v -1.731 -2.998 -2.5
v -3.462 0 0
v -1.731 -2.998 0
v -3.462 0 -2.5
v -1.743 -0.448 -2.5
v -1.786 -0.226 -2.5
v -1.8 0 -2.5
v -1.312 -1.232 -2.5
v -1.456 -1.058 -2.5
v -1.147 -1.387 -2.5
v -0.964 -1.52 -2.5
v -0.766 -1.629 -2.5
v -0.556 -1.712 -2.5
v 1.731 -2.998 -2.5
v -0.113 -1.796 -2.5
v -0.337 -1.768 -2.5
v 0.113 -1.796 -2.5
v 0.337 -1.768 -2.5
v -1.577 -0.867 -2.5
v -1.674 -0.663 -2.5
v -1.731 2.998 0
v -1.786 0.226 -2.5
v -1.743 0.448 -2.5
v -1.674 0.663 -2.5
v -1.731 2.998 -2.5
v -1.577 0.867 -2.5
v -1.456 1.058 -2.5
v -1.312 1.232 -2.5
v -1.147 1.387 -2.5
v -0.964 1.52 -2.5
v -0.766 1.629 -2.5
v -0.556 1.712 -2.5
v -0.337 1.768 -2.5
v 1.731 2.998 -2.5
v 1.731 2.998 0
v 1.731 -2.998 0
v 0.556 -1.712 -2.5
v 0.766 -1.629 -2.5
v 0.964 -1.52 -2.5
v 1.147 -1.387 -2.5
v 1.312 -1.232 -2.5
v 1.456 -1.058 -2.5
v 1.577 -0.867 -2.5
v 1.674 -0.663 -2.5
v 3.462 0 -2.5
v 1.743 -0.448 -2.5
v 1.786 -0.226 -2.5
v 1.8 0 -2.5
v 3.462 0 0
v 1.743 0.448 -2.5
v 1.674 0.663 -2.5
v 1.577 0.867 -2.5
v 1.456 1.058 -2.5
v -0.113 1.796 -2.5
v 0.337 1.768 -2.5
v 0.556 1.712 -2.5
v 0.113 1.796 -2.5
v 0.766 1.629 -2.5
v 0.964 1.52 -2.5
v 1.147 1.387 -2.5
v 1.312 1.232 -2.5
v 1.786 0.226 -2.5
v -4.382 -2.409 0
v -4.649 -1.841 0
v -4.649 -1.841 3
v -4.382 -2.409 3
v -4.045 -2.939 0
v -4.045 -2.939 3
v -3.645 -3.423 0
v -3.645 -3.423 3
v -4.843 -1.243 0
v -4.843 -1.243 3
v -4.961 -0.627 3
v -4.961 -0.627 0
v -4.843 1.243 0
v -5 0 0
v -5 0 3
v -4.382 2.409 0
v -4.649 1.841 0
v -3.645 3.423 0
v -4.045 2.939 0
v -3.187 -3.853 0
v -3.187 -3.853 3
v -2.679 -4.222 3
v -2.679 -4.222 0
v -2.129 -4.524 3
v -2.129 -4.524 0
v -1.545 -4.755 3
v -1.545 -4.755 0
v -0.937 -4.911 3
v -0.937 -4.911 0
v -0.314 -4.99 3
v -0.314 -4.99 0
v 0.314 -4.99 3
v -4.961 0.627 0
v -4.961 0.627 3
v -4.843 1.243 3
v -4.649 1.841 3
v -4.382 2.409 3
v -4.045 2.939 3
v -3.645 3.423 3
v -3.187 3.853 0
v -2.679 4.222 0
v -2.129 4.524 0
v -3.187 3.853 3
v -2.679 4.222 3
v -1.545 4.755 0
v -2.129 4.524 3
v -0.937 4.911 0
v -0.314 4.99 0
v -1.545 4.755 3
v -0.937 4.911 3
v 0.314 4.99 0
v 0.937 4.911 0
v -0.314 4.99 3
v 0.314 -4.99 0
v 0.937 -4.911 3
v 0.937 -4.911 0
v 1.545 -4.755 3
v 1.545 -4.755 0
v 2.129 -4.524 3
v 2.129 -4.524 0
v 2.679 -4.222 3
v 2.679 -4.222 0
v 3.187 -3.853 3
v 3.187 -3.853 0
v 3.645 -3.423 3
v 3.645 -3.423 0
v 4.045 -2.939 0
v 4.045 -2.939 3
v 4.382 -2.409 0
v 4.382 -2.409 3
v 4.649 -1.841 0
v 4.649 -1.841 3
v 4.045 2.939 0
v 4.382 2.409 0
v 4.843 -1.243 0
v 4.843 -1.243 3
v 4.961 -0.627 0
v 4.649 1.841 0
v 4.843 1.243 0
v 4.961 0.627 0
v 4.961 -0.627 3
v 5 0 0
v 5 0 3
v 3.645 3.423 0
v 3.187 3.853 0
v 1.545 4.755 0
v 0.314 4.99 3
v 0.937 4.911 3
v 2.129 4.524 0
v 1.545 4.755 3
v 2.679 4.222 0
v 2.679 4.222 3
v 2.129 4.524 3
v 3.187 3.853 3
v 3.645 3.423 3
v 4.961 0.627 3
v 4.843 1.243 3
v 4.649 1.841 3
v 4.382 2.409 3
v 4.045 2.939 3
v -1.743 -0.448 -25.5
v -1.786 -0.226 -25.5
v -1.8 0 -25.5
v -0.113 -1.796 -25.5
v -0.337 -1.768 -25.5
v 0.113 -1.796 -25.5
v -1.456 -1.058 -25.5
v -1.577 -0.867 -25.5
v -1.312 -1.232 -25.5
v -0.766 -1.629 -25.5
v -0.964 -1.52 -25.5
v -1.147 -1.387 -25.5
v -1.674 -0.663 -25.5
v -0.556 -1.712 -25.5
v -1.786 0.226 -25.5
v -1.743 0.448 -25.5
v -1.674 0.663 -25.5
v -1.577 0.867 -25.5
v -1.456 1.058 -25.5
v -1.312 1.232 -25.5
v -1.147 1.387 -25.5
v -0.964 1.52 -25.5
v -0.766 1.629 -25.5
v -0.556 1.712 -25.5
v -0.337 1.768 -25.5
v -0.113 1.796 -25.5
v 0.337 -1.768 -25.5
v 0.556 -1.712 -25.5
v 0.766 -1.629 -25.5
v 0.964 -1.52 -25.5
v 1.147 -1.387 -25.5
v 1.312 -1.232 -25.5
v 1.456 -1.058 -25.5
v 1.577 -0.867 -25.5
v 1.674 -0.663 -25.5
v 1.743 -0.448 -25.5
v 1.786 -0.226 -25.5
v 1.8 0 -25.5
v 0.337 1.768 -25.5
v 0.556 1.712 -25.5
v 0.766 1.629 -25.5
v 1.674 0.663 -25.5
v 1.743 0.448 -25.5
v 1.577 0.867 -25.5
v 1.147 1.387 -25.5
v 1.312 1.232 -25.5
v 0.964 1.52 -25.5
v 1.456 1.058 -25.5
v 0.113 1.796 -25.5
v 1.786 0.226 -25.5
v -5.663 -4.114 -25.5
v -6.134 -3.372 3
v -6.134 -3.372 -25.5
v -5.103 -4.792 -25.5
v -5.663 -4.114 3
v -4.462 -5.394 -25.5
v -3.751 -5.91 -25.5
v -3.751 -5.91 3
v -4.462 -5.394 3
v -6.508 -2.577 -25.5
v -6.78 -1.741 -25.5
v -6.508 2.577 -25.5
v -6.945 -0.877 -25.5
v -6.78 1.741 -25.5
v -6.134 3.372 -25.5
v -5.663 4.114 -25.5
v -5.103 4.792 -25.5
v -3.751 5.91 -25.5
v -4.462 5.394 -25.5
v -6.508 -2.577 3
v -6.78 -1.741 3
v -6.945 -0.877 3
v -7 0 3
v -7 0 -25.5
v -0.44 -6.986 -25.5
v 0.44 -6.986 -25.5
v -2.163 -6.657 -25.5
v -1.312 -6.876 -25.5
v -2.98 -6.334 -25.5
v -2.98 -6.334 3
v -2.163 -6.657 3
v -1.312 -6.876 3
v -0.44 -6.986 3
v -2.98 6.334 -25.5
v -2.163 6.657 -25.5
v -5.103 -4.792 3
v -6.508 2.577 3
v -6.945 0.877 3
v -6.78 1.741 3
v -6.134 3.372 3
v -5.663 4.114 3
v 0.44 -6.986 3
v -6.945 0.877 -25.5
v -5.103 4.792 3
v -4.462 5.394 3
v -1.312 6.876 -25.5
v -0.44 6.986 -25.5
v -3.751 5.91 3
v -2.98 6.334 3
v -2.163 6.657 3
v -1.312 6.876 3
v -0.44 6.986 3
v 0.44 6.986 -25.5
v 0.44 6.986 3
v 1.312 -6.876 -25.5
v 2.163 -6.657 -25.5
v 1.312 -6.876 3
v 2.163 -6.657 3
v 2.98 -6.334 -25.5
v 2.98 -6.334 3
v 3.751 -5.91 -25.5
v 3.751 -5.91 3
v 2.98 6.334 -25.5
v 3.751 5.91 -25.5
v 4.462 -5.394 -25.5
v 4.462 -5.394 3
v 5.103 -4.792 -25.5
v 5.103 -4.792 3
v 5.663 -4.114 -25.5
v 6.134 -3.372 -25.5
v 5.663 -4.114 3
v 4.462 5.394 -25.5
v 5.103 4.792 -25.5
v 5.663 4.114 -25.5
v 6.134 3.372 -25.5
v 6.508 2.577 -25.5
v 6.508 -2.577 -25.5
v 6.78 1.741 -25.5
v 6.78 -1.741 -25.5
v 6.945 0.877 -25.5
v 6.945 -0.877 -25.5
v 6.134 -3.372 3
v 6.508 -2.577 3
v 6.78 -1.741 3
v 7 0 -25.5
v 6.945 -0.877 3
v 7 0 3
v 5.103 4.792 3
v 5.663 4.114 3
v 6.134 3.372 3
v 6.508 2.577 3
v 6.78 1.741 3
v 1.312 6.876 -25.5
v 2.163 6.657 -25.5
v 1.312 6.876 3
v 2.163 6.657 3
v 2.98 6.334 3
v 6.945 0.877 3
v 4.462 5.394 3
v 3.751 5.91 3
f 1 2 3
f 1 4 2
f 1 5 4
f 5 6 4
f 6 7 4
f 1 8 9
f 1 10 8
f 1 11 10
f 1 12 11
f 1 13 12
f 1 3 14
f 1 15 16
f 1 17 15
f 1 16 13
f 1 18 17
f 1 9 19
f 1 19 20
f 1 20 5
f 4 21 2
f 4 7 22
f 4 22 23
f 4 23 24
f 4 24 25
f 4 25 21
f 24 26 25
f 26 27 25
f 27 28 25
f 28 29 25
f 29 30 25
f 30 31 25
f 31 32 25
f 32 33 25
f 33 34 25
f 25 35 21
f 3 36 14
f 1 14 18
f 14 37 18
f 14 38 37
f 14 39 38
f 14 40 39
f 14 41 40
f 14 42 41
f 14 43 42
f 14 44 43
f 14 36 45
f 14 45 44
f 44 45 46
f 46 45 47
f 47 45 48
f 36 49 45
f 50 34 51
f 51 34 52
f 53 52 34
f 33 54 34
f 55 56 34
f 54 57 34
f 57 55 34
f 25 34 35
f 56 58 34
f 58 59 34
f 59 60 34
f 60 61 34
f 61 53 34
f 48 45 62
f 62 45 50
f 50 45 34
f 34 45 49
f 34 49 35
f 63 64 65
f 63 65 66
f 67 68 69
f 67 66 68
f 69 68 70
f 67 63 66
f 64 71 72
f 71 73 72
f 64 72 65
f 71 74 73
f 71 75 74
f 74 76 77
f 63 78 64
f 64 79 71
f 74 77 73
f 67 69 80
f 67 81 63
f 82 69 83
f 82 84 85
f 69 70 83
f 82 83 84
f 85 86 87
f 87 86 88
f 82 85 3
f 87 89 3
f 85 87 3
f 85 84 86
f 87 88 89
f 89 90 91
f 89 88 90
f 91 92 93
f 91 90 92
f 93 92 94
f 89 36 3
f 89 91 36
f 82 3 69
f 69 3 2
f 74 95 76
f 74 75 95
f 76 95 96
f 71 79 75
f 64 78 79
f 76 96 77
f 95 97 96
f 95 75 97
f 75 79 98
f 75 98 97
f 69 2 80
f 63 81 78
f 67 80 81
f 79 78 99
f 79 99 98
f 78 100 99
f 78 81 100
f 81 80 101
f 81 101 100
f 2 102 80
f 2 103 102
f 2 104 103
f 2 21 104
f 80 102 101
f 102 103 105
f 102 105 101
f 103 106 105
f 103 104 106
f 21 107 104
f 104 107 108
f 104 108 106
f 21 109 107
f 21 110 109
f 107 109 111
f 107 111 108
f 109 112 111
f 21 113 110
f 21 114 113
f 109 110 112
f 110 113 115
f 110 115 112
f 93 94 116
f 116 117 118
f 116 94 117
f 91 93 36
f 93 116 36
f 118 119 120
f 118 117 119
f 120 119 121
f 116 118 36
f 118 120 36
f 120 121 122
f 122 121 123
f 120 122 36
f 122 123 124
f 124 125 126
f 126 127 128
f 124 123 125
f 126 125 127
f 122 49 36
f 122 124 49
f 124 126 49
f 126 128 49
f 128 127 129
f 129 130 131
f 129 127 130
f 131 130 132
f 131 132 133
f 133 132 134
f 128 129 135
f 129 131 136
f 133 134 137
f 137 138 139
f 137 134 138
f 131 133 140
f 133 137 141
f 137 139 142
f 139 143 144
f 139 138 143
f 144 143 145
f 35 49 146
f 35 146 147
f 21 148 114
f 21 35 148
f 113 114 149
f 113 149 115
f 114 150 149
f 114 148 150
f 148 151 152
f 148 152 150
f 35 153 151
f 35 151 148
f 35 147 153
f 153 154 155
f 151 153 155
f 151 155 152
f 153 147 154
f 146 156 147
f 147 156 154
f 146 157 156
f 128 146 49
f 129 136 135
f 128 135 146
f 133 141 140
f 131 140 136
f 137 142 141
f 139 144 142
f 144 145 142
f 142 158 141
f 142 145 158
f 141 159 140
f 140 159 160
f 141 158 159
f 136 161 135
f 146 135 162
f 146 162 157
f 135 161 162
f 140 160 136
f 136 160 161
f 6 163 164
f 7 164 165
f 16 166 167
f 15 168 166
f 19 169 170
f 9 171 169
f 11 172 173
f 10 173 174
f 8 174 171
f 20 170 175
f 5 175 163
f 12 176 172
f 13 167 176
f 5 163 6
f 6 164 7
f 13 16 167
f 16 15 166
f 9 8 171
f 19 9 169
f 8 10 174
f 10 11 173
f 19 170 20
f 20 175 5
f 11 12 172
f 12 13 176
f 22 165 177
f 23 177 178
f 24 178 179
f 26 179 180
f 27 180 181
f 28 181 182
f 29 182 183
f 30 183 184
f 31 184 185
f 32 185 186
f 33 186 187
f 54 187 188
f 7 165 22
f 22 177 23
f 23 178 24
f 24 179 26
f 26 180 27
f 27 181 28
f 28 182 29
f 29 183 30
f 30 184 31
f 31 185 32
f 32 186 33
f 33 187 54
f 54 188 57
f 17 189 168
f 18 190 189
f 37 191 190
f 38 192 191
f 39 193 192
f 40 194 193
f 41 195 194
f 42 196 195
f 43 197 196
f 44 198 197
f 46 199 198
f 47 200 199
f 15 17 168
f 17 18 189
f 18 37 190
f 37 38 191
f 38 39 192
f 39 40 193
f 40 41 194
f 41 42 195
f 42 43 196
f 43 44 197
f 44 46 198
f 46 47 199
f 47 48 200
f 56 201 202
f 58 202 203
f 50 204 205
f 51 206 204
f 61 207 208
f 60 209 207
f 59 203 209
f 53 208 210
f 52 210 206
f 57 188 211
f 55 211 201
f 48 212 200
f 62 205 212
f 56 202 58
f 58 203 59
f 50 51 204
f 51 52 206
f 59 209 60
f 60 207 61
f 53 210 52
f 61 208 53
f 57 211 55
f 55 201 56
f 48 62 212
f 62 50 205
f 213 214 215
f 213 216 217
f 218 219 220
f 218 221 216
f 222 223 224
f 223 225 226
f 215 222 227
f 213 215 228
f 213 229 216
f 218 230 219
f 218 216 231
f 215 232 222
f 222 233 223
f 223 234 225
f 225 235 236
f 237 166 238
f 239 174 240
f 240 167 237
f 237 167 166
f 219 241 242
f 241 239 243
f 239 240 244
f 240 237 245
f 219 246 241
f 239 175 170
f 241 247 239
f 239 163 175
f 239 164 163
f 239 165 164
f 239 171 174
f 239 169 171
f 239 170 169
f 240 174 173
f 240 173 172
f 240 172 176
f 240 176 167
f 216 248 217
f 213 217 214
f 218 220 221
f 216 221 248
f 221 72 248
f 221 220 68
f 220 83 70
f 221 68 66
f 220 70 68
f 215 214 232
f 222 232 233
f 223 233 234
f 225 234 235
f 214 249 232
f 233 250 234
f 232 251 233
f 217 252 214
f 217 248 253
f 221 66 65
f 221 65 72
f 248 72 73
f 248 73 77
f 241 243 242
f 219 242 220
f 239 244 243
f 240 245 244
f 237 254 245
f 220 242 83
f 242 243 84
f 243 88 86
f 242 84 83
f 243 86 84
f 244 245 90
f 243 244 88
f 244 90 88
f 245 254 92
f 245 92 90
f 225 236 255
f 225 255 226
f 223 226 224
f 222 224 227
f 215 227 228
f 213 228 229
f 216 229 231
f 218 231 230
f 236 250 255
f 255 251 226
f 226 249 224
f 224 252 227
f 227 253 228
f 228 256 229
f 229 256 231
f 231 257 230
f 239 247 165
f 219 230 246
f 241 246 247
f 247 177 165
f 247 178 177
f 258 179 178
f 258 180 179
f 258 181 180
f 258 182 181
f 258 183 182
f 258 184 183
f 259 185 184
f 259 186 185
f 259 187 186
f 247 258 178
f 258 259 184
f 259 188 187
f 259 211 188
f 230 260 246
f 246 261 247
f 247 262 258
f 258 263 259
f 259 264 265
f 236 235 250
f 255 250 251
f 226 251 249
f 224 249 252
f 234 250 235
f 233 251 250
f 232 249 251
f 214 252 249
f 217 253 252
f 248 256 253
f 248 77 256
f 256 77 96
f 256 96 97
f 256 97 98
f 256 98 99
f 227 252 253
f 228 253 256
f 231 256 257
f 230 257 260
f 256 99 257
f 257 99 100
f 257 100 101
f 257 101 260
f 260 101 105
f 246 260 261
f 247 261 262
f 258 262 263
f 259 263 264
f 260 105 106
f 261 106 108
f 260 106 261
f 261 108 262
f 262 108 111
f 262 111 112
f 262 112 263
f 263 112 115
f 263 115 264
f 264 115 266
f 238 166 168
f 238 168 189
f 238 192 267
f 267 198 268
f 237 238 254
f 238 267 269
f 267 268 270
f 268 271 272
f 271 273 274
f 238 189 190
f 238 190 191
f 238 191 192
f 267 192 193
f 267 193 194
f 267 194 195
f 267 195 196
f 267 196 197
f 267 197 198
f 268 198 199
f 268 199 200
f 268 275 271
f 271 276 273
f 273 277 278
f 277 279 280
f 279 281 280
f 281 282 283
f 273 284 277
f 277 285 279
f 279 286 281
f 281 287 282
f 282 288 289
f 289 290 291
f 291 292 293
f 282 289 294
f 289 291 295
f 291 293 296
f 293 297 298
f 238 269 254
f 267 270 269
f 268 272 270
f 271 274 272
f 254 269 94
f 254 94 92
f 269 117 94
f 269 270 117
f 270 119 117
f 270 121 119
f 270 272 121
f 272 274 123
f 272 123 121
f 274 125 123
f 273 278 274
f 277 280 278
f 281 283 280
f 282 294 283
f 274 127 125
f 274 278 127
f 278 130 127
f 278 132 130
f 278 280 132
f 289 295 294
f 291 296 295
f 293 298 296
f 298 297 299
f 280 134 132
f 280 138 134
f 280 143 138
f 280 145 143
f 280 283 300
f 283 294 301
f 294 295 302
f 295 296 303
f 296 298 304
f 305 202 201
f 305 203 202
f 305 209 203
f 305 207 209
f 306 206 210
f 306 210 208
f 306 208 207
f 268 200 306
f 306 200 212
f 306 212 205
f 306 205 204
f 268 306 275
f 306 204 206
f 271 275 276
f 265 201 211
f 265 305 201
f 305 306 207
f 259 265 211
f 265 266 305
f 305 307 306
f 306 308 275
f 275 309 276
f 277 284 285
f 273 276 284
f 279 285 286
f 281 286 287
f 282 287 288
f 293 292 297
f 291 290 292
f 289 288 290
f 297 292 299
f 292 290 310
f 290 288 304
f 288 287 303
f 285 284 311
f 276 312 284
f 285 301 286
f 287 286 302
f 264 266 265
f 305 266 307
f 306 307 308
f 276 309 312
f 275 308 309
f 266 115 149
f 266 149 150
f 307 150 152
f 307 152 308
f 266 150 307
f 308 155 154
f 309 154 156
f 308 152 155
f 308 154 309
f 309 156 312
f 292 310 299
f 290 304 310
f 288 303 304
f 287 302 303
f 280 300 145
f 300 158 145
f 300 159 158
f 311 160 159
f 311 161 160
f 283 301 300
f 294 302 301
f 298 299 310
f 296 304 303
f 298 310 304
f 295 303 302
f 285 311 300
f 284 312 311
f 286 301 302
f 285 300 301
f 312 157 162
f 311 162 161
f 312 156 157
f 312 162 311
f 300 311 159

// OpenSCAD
$fn = 50;

difference() {
	union() {
		translate(v = [0, 0, -25.5]) {
			cylinder(h = 28.5, r = 7.0);
		}
	}
	union() {
		translate(v = [0, 0, 0]) {
			rotate(a = [0, 0, 0]) {
				difference() {
					union() {
						translate(v = [0, 0, -2.5]) {
							linear_extrude(height = 2.5) {
								polygon(points = [[3.4619999999999997, 0.0], [1.7310000000000003, 2.9981799479017264], [-1.7309999999999992, 2.9981799479017264], [-3.4619999999999997, 4.2397272186481365e-16], [-1.7310000000000014, -2.998179947901726], [1.7309999999999977, -2.9981799479017277]]);
							}
						}
					}
					union();
				}
			}
		}
		#cylinder(h = 3, r = 5.0);
		#translate(v = [0, 0, -100.0]) {
			cylinder(h = 200, r = 1.8);
		}
	}
}
